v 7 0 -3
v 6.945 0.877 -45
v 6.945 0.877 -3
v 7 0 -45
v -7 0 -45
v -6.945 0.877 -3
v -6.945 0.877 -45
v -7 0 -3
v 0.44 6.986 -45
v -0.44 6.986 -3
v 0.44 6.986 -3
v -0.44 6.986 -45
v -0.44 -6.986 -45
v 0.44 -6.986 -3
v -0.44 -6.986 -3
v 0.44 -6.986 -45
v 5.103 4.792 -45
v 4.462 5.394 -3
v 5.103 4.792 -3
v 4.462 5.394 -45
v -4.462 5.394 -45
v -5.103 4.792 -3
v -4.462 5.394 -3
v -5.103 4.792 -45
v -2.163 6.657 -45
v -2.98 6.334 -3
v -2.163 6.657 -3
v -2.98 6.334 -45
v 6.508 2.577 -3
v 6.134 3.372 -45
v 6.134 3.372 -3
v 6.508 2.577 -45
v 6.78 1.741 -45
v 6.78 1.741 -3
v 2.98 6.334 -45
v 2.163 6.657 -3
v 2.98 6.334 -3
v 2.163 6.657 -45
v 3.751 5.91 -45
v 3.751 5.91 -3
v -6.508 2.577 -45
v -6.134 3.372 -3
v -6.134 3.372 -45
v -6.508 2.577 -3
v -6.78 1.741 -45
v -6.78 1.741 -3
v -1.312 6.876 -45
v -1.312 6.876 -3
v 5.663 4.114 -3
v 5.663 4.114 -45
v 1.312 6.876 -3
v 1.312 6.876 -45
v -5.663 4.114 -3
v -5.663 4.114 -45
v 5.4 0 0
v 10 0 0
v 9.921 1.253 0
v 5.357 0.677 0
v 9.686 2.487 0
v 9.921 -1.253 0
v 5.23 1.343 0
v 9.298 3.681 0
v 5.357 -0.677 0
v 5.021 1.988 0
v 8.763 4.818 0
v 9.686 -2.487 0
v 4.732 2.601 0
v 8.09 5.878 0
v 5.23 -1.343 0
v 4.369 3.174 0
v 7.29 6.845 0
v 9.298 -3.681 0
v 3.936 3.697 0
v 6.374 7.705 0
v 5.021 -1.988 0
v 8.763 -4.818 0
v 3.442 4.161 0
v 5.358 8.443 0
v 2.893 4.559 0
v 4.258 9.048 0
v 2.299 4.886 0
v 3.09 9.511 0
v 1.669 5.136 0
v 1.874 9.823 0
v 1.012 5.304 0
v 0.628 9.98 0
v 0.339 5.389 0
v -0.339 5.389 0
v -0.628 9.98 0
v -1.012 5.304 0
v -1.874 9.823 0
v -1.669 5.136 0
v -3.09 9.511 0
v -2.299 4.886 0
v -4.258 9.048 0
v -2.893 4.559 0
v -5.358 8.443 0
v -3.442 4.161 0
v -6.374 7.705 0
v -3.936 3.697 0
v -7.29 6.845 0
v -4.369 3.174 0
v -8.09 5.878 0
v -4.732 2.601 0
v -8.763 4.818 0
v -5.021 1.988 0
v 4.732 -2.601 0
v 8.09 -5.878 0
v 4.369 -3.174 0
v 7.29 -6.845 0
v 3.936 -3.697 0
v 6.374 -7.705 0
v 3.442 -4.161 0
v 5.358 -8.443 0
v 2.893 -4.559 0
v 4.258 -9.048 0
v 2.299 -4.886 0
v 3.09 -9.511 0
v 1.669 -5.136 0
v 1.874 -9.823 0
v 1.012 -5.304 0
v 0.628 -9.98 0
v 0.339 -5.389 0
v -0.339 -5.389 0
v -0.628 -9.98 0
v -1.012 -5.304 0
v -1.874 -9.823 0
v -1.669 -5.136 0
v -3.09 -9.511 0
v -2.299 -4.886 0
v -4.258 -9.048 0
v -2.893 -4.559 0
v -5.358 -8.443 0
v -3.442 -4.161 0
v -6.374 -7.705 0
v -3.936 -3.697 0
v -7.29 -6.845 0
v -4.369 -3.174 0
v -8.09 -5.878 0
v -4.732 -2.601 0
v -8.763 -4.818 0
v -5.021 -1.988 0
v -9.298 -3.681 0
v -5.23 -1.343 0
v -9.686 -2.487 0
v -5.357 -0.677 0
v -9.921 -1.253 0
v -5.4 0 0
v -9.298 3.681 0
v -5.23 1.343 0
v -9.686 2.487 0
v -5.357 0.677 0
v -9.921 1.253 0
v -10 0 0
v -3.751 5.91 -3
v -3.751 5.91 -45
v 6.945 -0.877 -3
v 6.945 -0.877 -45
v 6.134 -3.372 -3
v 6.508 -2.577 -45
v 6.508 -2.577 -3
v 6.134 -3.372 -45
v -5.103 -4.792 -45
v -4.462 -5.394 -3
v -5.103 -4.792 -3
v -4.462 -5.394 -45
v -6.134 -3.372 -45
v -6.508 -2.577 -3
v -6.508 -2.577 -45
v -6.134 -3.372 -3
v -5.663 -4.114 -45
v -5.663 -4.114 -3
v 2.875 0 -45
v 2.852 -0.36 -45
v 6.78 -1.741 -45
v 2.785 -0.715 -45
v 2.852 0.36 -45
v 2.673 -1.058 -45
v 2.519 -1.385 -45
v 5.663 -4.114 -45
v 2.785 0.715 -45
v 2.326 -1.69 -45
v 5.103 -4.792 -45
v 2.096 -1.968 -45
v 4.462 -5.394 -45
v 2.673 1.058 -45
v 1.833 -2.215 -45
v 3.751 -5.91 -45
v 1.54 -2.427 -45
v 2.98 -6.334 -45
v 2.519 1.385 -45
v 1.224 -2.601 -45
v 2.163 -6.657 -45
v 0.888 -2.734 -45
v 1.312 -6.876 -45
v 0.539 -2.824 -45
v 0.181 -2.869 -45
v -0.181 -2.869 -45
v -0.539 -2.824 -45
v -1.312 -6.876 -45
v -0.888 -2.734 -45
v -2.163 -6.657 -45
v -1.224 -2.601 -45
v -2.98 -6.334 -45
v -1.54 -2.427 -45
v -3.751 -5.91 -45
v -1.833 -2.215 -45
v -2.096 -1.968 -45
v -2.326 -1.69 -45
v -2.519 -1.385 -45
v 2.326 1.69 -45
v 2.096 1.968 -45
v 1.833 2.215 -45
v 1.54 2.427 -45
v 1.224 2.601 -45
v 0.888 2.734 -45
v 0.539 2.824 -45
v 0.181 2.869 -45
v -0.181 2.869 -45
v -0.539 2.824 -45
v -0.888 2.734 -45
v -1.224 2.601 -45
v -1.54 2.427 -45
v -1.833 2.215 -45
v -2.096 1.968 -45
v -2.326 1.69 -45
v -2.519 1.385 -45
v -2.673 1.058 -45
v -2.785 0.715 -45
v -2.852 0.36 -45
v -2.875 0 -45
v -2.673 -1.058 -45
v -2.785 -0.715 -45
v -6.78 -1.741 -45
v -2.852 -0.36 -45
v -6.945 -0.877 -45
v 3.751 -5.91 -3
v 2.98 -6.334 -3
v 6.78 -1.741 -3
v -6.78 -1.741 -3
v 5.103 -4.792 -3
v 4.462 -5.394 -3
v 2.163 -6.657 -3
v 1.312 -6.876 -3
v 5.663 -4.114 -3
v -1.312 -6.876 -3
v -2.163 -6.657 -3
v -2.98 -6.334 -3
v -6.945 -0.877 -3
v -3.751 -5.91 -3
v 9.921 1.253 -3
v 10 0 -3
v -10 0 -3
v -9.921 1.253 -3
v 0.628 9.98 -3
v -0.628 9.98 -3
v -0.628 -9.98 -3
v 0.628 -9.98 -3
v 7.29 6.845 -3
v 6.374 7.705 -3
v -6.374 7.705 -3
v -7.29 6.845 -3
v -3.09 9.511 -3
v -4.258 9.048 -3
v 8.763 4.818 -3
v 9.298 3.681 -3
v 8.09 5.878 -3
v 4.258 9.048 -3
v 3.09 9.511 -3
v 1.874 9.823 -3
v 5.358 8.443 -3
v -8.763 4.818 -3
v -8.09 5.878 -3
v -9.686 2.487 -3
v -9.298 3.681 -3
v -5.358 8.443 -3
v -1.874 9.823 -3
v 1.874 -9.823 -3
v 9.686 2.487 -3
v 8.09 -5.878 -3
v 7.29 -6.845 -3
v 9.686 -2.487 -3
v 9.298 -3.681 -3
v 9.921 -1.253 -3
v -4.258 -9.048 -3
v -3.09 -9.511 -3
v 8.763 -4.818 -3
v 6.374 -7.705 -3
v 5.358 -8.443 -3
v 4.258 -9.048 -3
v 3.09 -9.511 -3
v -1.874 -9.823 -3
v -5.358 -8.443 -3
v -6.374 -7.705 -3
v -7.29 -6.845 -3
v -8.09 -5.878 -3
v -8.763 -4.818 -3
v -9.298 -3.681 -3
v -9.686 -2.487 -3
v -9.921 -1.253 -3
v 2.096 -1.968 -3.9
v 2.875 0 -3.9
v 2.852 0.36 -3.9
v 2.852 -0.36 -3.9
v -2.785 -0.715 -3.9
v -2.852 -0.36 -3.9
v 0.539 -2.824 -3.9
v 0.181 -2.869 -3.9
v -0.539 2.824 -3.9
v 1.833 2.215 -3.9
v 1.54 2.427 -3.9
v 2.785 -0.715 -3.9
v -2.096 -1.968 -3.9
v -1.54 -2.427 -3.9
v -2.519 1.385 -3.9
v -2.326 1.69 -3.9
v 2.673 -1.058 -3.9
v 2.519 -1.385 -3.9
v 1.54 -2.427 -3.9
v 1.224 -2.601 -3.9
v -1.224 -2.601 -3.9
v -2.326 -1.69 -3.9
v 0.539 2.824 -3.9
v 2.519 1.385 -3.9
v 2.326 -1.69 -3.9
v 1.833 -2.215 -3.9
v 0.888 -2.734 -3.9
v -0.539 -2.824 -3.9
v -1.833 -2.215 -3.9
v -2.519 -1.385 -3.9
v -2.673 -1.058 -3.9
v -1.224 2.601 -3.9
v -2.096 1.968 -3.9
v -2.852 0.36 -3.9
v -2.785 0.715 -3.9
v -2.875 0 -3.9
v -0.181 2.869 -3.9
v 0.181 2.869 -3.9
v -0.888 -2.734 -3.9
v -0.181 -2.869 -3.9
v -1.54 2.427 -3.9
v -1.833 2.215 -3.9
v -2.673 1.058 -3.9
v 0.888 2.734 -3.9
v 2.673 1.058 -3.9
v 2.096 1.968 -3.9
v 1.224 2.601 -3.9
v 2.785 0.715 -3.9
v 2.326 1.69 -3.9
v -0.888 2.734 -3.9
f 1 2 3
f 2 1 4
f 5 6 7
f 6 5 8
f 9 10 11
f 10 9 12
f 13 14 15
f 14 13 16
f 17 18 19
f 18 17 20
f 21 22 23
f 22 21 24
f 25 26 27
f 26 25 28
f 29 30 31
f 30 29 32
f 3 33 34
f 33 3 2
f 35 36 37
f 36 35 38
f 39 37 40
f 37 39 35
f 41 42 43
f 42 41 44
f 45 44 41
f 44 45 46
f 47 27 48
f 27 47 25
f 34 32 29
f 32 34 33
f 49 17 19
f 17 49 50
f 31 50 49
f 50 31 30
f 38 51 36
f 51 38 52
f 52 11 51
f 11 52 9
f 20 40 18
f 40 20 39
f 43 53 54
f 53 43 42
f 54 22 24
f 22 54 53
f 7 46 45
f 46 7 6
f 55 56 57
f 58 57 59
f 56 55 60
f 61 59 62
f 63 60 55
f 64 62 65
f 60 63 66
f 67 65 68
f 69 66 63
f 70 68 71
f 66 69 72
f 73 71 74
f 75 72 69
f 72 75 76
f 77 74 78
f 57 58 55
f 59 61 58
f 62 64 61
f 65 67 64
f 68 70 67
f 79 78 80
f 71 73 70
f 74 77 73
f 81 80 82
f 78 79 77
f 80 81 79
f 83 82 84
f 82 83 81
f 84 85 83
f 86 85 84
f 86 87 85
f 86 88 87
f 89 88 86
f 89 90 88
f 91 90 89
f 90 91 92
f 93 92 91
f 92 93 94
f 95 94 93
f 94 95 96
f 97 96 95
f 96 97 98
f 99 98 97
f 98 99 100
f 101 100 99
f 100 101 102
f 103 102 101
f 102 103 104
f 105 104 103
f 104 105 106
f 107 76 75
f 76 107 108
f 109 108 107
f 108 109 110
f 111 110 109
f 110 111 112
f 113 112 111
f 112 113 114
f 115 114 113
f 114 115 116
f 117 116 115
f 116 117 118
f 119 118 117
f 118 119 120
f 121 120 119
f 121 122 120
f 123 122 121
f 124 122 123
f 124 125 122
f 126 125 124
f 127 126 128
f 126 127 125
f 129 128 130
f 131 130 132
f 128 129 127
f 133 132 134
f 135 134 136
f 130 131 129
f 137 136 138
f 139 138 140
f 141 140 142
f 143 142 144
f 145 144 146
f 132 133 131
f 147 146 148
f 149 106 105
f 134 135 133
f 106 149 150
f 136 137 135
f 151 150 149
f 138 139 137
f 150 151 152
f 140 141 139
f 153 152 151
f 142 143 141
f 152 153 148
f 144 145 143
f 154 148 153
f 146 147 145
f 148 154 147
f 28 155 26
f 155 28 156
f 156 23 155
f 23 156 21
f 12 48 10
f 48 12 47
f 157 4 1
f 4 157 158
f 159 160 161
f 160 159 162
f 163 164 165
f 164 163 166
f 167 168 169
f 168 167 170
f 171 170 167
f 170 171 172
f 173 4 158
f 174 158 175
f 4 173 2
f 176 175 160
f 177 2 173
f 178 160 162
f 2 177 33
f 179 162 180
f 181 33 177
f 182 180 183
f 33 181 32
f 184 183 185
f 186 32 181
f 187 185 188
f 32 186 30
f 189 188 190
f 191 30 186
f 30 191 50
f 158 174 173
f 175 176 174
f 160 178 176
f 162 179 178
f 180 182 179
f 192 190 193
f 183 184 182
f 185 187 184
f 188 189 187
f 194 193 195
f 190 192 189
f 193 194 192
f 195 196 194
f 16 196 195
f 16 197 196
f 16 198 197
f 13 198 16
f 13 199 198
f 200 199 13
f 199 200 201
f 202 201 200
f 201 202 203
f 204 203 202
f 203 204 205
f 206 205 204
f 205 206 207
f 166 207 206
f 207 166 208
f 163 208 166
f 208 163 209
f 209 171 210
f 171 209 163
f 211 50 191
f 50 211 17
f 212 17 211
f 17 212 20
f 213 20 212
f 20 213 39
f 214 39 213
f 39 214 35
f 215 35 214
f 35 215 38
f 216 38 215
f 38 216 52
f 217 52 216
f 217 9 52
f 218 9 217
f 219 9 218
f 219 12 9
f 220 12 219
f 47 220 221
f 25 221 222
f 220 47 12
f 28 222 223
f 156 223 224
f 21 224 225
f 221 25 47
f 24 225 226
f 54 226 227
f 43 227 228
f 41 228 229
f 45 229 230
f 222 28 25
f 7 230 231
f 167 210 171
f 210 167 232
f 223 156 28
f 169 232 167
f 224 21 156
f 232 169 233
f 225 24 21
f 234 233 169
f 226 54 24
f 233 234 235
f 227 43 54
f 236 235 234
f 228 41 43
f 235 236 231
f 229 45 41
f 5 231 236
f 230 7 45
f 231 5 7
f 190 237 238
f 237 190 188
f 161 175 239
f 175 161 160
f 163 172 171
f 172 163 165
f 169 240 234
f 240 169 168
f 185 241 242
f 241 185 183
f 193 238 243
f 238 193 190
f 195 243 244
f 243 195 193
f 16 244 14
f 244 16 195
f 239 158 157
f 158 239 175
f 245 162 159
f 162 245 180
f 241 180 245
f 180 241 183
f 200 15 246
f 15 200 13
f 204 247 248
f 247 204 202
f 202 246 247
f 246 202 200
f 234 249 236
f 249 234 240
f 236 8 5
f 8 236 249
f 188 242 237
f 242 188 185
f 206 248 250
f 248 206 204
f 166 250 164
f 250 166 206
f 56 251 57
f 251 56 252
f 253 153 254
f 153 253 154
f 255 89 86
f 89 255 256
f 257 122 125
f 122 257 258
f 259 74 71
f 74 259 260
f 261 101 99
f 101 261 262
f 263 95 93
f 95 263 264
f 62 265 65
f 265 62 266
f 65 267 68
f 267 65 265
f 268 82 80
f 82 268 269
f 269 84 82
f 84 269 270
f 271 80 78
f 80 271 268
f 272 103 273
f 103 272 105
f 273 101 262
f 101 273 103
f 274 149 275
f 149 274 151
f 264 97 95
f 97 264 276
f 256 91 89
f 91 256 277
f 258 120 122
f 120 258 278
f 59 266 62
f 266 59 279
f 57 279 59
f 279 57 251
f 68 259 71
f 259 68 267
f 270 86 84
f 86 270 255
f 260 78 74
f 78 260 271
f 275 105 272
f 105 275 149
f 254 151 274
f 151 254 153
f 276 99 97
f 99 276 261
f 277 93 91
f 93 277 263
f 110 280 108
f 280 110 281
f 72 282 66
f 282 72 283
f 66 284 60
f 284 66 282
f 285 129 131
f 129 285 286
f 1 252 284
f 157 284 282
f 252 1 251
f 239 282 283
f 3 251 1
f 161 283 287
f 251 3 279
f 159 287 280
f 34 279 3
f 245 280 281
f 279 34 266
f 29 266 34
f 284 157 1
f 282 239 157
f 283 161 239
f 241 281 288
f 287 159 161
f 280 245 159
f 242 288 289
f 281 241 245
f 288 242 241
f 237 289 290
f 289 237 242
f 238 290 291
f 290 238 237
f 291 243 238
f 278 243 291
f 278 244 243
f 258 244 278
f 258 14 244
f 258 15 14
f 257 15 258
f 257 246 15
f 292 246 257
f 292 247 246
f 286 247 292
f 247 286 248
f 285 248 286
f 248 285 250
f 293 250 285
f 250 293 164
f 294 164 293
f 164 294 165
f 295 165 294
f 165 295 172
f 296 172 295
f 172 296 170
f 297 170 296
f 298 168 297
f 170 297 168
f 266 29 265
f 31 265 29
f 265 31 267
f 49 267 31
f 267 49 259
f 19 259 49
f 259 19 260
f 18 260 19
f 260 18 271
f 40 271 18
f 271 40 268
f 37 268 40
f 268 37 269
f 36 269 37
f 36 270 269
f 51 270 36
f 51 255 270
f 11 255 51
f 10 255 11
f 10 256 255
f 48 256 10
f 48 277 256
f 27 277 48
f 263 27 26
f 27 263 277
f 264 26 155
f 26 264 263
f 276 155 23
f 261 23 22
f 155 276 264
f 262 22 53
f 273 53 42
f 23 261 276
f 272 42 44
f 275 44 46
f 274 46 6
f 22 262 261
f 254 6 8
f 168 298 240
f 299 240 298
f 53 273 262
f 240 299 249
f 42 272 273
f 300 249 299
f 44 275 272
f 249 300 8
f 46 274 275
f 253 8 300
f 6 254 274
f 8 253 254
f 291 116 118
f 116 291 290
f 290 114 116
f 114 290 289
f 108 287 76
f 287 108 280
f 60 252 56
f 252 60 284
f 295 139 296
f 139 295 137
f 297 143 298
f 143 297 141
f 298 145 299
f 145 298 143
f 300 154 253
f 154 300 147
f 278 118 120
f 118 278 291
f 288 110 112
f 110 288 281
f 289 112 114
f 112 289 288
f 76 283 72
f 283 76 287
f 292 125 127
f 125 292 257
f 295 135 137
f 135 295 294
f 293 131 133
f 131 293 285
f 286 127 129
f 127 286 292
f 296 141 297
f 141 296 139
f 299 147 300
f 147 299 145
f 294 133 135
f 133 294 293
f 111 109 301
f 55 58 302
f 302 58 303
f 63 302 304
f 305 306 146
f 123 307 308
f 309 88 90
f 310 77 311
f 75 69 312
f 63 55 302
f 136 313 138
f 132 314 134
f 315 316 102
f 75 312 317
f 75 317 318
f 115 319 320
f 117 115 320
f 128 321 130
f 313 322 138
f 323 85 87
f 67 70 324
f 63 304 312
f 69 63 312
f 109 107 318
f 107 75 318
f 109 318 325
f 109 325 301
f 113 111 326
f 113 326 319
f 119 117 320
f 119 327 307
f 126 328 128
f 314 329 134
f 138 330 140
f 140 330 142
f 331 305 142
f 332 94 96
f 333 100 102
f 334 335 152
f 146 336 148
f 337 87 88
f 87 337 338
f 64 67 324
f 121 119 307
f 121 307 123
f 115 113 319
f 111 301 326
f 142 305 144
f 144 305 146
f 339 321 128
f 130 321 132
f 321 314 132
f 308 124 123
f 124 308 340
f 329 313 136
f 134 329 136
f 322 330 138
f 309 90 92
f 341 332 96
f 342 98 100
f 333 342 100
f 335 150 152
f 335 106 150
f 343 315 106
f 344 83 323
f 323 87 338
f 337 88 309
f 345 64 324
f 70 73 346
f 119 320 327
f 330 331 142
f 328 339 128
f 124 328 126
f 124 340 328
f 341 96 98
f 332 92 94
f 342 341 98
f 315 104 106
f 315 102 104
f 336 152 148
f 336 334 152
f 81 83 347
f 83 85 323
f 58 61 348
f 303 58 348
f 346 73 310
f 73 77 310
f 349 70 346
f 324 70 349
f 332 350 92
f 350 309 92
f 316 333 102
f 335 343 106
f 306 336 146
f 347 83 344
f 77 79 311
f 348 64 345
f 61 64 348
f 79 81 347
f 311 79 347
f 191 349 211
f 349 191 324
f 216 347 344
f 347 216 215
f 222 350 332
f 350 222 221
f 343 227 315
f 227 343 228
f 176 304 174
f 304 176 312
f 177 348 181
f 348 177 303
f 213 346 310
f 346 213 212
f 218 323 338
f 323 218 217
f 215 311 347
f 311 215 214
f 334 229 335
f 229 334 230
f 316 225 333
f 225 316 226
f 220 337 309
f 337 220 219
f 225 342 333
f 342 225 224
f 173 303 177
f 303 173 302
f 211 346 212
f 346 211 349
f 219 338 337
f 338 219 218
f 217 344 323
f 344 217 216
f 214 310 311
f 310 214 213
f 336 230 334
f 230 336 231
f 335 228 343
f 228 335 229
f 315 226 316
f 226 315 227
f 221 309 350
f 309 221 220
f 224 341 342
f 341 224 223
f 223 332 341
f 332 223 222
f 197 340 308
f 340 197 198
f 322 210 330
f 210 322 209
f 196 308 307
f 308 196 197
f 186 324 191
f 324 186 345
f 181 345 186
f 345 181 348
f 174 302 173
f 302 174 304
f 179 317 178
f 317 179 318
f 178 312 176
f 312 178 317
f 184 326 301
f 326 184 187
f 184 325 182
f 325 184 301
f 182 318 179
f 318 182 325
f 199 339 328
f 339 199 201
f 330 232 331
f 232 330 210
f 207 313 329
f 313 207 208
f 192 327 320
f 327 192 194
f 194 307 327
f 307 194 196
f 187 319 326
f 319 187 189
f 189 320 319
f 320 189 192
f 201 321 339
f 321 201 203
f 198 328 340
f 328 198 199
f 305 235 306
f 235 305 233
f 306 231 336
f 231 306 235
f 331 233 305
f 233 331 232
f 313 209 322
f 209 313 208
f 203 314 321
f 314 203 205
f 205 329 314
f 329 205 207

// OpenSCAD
$fn = 50;


difference() {
	union() {
		translate(v = [0, 0, -45.0000000000]) {
			cylinder(h = 45, r = 7.0000000000);
		}
		translate(v = [0, 0, -3.0000000000]) {
			cylinder(h = 3, r = 10.0000000000);
		}
	}
	union() {
		translate(v = [0, 0, 0]) {
			rotate(a = [0, 0, 0]) {
				difference() {
					union() {
						#translate(v = [0, 0, -45.0000000000]) {
							cylinder(h = 45, r = 2.6000000000);
						}
						#translate(v = [0, 0, -3.9000000000]) {
							cylinder(h = 3.9000000000, r = 7.0000000000, r1 = 2.8750000000, r2 = 5.4000000000);
						}
						#translate(v = [0, 0, -45.0000000000]) {
							cylinder(h = 45, r = 2.8750000000);
						}
						#translate(v = [0, 0, -45.0000000000]) {
							cylinder(h = 45, r = 2.6000000000);
						}
					}
					union();
				}
			}
		}
	}
}
